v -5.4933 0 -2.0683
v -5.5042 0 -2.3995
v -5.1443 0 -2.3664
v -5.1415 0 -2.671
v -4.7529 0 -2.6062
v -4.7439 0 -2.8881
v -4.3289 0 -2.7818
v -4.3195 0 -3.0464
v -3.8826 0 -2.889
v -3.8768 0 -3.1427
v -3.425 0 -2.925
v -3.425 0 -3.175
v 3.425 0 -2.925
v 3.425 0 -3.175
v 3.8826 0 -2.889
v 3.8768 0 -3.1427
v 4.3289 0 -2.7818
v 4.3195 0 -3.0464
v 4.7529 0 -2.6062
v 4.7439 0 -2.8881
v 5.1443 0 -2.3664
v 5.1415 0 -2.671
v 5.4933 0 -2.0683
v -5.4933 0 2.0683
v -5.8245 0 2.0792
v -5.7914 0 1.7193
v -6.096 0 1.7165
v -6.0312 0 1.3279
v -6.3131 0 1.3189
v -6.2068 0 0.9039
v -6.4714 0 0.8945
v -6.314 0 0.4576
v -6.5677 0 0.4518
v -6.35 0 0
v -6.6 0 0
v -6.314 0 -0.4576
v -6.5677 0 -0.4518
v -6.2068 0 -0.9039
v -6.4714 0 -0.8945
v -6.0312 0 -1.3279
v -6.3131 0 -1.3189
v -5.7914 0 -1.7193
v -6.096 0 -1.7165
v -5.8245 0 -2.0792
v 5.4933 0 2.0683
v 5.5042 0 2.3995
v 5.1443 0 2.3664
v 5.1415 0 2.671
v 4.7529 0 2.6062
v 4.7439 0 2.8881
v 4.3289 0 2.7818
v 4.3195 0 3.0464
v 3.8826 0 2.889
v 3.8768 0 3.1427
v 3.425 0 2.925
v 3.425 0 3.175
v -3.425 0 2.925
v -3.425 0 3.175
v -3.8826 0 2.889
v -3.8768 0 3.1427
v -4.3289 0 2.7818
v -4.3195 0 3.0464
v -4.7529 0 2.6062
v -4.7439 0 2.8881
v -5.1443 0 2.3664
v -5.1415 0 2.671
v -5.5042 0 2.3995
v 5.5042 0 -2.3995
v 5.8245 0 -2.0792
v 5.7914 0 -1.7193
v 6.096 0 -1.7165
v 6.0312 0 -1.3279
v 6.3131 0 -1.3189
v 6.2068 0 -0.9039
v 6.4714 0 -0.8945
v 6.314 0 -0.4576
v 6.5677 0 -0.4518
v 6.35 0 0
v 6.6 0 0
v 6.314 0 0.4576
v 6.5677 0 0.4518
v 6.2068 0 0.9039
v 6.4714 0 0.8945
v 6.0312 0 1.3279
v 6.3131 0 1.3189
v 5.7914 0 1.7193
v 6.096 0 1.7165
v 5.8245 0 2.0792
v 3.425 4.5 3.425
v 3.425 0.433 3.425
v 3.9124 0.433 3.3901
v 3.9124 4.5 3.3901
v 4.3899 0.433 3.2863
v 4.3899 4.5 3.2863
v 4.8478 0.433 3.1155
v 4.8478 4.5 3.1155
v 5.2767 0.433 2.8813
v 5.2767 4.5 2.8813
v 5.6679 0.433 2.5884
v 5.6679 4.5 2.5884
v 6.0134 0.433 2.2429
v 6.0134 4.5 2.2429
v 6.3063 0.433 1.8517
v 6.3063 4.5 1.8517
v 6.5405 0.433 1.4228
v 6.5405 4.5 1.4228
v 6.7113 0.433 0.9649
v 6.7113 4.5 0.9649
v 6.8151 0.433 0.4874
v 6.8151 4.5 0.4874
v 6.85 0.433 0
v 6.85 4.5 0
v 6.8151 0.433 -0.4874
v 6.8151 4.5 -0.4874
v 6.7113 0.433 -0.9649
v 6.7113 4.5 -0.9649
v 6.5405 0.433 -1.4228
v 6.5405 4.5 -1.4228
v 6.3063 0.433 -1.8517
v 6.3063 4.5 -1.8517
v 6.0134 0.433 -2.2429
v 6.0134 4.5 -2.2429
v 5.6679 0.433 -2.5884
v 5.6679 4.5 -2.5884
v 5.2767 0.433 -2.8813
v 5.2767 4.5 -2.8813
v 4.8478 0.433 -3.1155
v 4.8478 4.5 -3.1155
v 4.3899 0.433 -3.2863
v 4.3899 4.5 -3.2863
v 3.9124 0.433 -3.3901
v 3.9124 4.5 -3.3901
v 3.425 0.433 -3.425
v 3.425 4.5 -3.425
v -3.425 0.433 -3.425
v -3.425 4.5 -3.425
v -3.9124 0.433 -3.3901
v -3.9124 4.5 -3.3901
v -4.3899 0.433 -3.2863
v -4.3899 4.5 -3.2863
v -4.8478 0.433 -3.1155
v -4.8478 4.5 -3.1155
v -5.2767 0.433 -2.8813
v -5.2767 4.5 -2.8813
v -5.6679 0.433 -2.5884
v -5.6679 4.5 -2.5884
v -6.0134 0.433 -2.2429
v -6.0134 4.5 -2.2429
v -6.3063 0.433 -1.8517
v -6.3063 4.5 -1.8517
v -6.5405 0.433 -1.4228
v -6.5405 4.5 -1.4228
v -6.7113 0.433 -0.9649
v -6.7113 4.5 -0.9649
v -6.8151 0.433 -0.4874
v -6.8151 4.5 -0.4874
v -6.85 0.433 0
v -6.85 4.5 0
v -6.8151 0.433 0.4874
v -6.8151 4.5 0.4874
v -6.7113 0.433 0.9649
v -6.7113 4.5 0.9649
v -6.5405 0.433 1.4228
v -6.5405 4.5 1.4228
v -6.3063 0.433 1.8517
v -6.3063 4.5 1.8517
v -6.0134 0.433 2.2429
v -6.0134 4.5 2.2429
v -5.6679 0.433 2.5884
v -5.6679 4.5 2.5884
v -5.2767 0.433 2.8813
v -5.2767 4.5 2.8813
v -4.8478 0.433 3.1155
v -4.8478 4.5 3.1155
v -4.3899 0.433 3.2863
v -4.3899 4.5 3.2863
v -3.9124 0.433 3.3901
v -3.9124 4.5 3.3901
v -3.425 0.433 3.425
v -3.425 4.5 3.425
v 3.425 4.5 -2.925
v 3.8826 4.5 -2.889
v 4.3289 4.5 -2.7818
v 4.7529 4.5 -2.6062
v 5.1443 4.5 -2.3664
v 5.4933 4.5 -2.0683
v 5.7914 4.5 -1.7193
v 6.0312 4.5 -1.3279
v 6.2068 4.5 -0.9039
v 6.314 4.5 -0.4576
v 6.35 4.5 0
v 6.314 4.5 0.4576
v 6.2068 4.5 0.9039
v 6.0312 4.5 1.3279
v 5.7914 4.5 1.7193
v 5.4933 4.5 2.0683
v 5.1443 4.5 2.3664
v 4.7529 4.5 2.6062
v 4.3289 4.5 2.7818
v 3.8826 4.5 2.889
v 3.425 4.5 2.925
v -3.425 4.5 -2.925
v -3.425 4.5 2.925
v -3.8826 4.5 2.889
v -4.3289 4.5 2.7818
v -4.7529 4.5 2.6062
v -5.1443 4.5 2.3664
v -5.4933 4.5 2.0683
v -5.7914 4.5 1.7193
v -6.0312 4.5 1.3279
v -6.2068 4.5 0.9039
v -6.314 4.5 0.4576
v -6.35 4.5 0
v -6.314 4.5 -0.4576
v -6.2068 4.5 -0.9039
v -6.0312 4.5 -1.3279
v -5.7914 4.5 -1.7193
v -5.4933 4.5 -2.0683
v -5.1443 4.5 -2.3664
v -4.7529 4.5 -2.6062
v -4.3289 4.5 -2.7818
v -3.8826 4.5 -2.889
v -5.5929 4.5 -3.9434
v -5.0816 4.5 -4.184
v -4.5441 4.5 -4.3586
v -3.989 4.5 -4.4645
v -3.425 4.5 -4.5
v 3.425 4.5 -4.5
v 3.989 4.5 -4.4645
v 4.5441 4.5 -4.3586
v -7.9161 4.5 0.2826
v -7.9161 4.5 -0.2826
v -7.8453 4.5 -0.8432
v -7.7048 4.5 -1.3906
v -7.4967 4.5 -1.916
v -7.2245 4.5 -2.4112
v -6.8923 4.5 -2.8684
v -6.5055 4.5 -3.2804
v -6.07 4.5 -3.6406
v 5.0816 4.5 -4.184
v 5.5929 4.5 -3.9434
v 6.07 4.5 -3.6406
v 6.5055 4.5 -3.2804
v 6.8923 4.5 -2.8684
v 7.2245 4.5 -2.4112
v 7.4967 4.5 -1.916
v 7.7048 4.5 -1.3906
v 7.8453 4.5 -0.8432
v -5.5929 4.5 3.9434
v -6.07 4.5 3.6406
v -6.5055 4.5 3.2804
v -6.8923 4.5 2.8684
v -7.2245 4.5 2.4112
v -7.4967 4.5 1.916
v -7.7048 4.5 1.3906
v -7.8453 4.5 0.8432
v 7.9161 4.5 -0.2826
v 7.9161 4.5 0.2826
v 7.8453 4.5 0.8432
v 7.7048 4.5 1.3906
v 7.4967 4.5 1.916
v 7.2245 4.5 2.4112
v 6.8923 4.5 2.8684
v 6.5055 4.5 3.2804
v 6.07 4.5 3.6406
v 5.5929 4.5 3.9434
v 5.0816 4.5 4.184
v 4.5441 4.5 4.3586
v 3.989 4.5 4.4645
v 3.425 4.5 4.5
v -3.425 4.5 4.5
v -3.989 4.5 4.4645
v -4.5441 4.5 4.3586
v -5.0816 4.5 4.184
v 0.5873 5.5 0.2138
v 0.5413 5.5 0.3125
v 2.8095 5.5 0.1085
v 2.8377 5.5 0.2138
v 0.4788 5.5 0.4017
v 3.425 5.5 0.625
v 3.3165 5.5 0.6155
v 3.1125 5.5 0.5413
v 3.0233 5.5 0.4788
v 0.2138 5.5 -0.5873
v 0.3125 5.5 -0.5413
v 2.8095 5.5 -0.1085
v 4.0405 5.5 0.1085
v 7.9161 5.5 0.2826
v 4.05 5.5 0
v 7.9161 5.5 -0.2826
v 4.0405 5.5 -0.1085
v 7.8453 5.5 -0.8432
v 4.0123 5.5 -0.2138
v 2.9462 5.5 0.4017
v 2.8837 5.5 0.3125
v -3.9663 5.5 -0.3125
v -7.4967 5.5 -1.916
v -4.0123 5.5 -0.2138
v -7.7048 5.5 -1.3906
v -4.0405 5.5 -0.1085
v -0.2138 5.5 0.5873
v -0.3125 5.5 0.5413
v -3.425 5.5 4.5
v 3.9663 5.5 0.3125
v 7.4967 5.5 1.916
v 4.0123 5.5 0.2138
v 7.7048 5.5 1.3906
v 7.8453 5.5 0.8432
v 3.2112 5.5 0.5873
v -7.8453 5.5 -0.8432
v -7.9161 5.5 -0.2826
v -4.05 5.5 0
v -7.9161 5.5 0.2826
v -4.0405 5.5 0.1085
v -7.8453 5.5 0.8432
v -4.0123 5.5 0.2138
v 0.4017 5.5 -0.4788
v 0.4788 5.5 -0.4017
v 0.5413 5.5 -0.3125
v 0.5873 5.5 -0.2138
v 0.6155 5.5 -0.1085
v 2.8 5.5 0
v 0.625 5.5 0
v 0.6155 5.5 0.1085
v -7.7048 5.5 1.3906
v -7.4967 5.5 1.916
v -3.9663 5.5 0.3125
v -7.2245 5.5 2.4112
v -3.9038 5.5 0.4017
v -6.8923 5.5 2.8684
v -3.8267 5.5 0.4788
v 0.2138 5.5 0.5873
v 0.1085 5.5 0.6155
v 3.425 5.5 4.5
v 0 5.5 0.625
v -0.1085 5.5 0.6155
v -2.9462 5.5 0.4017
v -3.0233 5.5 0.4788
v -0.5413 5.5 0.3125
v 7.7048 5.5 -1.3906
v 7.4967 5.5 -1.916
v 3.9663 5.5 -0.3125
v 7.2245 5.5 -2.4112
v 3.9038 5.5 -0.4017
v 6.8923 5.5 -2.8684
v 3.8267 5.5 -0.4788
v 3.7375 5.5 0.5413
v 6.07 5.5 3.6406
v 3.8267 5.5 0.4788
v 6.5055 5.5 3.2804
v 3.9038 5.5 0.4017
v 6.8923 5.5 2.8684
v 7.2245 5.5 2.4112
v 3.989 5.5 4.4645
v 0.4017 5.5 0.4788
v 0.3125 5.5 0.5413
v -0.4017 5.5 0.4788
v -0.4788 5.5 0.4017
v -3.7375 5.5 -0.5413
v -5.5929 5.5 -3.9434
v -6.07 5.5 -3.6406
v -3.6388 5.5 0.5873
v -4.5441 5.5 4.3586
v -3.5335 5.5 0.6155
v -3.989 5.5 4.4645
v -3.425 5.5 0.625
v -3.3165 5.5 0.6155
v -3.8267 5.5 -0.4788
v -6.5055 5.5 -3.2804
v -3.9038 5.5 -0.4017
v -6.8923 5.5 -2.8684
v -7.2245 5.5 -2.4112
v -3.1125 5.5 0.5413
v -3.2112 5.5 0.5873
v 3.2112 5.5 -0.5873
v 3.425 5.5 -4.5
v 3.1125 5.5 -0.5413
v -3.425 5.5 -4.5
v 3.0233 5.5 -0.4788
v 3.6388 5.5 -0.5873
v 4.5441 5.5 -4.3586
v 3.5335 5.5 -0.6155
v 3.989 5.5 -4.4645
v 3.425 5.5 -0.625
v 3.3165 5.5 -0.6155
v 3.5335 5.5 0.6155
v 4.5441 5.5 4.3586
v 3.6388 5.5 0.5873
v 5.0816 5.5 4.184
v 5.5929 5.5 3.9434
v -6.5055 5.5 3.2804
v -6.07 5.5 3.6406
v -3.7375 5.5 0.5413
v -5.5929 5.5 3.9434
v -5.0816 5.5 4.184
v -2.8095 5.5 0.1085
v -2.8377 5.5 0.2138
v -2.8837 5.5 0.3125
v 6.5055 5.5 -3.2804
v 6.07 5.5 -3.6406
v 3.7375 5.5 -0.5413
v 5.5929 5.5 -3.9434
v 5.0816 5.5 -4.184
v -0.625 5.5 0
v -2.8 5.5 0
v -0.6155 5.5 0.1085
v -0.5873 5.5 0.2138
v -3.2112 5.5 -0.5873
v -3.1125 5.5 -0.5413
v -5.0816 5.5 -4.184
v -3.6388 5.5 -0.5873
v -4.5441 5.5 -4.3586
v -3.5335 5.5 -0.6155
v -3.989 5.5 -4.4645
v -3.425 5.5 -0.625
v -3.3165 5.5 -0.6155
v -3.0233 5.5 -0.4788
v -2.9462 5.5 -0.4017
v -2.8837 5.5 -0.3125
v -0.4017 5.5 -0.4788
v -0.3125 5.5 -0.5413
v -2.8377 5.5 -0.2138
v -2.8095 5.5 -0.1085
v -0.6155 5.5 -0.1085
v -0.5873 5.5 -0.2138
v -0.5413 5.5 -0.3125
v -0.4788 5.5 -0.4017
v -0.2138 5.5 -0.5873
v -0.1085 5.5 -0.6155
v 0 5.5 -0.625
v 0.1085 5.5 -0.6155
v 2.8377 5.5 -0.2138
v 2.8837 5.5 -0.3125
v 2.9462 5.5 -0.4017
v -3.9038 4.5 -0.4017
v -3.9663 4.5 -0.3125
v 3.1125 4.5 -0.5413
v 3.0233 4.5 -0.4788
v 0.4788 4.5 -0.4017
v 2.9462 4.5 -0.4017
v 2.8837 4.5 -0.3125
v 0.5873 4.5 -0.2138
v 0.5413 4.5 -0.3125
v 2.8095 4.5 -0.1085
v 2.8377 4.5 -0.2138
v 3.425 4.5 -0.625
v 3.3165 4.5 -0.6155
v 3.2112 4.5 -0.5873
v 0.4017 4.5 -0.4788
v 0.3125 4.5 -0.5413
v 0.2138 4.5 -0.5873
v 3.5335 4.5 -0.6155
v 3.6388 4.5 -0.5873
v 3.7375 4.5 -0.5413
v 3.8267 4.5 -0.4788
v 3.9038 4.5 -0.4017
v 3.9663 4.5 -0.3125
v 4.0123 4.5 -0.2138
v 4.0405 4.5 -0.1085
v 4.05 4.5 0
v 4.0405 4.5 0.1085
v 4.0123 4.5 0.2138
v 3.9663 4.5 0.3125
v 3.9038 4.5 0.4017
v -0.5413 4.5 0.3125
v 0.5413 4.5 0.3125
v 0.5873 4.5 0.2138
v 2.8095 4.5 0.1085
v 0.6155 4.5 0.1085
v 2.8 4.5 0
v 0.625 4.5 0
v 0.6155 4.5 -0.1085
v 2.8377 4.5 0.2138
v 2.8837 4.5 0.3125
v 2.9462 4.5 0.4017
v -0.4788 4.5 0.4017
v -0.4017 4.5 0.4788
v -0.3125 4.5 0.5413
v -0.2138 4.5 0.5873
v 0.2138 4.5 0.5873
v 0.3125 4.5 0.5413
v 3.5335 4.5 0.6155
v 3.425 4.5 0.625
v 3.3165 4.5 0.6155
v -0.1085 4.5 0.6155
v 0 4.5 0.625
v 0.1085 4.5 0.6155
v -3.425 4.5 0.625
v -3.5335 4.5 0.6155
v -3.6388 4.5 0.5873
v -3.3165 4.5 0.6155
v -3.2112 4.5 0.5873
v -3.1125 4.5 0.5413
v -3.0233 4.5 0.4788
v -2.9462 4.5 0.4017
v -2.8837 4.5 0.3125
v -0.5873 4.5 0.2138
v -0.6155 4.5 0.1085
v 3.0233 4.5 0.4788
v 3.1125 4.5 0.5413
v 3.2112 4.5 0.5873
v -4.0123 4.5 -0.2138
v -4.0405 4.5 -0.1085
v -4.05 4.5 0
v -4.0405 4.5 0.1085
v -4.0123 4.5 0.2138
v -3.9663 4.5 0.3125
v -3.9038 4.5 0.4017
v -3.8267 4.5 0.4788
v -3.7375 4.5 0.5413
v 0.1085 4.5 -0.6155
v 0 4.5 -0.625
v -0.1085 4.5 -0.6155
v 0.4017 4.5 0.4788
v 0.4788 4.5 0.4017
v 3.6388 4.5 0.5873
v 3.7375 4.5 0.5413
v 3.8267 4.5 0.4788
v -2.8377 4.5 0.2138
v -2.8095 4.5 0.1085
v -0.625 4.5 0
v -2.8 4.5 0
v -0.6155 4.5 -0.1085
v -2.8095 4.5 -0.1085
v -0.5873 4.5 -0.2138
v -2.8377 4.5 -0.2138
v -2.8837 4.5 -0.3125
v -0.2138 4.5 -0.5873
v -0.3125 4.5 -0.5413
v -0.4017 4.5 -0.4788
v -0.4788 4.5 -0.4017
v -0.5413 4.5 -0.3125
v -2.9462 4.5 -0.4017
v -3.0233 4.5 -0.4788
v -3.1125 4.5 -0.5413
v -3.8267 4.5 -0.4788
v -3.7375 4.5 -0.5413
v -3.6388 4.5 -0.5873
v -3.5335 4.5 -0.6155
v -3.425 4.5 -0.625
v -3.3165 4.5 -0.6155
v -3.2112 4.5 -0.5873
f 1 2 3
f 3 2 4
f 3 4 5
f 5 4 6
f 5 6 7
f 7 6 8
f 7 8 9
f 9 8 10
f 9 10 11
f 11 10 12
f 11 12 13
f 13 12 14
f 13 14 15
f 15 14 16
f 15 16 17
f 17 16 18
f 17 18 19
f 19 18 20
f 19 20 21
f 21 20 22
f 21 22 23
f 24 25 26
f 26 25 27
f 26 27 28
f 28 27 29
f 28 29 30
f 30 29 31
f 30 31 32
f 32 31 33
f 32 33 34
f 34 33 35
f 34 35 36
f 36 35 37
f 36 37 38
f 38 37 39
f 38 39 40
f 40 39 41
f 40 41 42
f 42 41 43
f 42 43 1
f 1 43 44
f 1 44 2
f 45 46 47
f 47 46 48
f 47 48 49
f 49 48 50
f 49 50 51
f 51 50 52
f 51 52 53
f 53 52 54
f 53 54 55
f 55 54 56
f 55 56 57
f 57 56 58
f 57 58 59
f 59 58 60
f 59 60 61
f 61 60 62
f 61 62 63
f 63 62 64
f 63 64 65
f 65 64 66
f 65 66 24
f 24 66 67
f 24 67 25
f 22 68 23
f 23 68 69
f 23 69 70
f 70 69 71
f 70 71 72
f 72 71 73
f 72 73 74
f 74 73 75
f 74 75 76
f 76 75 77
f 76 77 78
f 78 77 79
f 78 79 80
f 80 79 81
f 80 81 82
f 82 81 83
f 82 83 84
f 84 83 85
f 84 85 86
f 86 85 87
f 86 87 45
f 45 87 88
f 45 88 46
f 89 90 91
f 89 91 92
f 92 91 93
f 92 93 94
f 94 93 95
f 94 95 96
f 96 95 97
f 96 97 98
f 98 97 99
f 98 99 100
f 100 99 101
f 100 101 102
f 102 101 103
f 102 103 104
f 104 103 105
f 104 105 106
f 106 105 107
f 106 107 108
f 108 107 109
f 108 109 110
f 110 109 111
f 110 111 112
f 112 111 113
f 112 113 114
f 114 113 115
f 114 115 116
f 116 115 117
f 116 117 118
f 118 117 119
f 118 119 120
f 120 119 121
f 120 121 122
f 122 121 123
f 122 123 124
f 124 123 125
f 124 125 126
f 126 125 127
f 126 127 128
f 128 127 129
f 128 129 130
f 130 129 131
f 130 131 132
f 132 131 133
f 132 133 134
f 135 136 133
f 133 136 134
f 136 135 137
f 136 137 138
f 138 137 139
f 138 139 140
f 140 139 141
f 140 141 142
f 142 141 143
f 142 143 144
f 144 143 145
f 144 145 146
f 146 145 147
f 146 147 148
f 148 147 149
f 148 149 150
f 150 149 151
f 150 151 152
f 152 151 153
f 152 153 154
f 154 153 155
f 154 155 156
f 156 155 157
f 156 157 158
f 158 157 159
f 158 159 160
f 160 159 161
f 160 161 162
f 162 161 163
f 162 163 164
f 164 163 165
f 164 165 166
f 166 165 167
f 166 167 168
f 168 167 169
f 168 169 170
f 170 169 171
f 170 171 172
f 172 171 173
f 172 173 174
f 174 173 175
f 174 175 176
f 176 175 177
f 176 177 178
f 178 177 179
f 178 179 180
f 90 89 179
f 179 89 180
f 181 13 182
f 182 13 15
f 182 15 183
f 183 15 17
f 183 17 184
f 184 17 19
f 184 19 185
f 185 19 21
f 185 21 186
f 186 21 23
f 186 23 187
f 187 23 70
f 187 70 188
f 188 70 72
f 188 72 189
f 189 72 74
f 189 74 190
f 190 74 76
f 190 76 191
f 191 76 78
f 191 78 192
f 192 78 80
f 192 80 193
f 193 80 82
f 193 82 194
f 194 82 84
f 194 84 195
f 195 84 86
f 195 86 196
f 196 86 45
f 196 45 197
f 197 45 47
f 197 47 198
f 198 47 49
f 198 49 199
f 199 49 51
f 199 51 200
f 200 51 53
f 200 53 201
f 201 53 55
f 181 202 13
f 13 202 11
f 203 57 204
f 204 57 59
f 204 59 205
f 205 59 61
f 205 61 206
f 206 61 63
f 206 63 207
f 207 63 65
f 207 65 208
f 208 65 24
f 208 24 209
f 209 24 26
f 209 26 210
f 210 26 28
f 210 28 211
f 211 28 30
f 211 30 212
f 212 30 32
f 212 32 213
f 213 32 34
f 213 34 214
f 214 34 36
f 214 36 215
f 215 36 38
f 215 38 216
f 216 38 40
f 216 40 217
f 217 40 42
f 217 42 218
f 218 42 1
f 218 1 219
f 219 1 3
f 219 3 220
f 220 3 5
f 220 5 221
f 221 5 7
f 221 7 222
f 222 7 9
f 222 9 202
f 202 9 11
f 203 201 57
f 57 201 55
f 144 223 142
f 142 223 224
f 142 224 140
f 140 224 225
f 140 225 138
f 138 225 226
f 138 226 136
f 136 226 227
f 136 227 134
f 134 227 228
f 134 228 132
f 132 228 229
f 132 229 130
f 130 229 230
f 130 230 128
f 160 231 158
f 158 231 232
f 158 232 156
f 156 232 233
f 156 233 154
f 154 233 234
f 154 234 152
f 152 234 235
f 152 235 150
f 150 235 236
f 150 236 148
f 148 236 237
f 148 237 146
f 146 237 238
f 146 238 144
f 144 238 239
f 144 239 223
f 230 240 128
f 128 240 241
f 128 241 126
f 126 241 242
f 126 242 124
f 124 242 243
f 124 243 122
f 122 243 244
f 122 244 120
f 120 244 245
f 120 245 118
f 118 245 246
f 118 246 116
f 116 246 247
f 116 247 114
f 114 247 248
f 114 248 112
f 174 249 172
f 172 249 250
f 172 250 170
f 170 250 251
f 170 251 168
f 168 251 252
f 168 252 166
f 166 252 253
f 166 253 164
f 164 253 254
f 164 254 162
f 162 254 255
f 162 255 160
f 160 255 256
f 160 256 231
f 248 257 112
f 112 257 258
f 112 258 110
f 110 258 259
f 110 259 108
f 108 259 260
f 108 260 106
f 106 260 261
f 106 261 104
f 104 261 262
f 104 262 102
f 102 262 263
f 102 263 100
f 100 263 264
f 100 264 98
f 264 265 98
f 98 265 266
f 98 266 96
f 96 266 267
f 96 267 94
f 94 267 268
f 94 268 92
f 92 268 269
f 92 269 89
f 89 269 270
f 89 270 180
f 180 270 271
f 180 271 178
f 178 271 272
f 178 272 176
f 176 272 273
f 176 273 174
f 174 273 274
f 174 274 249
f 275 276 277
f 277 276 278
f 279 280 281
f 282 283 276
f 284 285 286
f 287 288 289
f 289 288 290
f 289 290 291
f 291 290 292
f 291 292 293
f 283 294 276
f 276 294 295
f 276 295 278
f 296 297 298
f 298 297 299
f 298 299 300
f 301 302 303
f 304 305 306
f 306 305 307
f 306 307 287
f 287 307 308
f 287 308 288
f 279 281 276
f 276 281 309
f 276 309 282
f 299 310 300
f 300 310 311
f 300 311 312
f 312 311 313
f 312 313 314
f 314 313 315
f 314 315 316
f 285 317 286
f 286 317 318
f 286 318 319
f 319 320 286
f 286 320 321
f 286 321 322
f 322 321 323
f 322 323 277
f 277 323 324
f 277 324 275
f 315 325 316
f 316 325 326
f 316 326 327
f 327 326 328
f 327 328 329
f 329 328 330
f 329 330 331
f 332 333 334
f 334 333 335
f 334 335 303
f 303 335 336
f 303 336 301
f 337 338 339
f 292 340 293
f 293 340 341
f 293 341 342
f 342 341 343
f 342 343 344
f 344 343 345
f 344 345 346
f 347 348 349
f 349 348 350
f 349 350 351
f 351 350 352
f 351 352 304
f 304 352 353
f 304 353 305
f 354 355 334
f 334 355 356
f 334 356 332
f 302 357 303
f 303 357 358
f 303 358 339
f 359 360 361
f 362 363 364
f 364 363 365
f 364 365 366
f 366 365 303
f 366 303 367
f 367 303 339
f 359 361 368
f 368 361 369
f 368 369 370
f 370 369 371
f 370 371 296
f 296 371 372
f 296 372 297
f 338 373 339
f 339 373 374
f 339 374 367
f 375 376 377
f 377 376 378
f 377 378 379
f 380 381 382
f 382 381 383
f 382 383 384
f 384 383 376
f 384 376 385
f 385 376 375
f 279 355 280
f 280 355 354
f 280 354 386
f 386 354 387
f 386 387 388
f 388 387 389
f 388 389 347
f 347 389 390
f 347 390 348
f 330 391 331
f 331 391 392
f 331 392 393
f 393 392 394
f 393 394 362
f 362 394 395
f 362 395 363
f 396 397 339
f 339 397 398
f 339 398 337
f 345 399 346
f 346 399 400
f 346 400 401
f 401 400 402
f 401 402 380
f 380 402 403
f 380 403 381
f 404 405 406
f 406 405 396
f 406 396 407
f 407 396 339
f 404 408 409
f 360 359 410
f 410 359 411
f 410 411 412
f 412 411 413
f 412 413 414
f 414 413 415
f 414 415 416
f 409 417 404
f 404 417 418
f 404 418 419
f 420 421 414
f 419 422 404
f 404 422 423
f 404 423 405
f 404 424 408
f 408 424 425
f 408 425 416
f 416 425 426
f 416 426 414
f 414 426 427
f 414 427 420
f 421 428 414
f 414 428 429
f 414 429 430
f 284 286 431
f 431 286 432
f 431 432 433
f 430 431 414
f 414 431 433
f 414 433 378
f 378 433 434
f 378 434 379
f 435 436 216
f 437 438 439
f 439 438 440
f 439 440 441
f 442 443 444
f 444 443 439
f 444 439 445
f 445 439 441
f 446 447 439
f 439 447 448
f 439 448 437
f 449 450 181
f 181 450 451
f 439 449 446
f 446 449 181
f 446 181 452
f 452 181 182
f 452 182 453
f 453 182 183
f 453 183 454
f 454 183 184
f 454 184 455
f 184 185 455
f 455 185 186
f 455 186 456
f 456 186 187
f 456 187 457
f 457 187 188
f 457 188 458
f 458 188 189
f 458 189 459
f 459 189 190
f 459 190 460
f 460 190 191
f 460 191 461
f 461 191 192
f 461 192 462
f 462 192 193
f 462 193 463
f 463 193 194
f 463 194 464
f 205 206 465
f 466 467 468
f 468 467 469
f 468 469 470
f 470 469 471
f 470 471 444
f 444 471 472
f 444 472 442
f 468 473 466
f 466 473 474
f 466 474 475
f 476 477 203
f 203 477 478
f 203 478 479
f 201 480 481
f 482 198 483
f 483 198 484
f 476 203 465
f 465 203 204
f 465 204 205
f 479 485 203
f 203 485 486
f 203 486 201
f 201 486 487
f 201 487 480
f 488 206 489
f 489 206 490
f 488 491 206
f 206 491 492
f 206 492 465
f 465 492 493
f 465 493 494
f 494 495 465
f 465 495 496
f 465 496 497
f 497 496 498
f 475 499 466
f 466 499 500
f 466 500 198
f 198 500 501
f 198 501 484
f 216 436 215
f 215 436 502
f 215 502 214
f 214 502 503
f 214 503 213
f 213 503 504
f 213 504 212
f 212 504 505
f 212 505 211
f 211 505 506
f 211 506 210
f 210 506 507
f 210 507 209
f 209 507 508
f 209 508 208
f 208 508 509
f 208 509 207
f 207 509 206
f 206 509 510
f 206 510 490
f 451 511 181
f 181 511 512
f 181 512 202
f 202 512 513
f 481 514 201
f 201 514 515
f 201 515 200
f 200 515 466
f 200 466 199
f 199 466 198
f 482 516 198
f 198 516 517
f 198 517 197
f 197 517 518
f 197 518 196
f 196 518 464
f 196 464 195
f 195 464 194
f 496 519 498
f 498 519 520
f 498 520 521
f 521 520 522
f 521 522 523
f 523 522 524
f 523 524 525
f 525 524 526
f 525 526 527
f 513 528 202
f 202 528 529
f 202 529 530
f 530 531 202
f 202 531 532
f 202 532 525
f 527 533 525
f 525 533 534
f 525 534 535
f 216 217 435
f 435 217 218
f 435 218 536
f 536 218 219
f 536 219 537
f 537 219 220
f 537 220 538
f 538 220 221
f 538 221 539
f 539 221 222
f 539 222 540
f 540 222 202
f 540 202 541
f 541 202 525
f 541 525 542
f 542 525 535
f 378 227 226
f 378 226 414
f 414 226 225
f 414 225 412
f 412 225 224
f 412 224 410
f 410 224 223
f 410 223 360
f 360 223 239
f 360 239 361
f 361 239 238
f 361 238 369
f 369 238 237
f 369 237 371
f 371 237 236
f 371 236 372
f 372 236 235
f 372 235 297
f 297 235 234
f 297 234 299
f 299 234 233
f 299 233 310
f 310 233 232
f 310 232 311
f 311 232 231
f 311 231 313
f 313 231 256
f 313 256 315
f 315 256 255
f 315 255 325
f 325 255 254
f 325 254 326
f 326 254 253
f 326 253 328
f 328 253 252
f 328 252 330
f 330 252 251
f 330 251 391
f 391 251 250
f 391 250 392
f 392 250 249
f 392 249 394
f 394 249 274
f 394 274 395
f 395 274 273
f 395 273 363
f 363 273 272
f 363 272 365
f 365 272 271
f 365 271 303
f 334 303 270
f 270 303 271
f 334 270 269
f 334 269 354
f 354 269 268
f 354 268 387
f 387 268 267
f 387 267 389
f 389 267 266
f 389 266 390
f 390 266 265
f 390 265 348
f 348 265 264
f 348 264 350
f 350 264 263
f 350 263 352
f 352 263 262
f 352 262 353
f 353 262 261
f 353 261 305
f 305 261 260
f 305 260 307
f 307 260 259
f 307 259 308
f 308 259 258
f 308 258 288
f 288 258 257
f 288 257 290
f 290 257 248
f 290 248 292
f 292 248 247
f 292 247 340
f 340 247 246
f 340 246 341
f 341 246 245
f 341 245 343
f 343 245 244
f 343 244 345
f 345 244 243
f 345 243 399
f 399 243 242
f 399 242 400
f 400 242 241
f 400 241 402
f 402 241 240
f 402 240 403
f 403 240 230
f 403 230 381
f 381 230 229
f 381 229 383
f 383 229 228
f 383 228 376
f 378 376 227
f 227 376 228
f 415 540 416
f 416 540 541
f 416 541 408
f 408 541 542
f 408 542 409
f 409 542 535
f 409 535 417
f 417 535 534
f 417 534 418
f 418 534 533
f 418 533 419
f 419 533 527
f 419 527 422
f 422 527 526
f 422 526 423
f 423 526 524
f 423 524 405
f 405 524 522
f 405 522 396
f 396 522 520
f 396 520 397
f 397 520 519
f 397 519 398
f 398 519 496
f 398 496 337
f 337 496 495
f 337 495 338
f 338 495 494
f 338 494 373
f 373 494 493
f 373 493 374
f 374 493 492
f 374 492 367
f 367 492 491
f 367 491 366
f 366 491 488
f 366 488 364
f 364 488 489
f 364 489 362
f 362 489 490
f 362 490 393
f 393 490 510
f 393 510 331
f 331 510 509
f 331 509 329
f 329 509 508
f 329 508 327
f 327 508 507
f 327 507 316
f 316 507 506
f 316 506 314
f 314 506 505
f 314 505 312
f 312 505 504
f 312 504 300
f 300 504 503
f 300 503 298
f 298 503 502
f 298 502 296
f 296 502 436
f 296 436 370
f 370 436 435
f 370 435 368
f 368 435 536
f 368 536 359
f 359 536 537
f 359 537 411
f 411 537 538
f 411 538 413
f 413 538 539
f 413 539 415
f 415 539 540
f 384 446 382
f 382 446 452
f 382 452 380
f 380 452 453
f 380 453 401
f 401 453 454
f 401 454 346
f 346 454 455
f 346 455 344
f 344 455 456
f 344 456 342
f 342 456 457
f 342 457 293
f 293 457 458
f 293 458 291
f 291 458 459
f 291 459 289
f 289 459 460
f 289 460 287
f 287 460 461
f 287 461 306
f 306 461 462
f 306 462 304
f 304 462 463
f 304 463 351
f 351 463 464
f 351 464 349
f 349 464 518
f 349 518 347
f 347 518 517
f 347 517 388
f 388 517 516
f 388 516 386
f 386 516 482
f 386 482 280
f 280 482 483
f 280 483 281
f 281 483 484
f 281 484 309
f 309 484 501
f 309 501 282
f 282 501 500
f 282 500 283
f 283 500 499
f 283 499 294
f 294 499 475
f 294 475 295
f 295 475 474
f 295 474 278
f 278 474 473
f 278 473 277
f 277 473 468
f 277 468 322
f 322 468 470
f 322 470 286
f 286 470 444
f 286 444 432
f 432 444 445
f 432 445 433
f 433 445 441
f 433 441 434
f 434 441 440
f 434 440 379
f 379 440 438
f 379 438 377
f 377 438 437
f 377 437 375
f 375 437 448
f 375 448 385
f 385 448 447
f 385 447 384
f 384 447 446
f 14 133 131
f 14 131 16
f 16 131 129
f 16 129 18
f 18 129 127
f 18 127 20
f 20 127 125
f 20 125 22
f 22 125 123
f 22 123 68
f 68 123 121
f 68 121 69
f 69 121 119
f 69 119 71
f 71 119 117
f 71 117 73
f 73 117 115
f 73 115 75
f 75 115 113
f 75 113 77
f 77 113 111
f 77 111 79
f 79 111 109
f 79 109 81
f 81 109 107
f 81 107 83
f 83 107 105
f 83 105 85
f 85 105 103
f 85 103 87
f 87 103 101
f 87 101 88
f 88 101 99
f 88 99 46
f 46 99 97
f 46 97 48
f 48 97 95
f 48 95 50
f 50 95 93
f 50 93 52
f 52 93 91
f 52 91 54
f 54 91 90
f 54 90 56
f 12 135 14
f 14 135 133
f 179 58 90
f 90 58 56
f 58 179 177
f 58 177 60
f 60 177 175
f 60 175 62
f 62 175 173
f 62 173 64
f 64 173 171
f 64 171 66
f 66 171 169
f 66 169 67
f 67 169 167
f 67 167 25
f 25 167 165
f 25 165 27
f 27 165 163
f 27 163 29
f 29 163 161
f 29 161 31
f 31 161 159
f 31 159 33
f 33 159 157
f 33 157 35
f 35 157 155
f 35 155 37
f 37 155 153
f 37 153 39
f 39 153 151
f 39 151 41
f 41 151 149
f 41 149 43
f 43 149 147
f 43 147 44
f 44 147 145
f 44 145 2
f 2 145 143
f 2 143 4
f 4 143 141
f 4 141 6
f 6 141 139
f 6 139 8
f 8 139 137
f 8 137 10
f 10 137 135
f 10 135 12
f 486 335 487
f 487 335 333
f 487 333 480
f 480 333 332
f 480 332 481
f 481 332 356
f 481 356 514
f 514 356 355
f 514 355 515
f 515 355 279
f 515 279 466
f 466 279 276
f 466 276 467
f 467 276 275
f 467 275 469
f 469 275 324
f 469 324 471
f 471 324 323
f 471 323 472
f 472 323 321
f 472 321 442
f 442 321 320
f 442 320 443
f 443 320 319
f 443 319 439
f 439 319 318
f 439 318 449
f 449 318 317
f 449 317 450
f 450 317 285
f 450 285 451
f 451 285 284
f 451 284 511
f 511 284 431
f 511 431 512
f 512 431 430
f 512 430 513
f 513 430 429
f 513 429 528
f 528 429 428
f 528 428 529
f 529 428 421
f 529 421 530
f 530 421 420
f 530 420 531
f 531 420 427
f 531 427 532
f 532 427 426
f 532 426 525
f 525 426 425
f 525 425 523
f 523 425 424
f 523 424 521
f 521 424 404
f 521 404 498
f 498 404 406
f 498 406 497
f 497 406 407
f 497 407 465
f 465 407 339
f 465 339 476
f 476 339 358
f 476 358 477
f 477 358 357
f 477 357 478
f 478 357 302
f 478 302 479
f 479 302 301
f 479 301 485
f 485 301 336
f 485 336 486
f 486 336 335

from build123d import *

# Parameters (mm, degrees)
BOSS_EXTRUDE1_DEPTH     = 4.5
SKETCH2_R               = 0.625
BOSS_EXTRUDE2_DEPTH     = 1
CHAMFER2_SIZE           = 0.25
CHAMFER2_SIZE2          = 0.433012702
SKETCH3_R               = 0.625
CUT_EXTRUDE1_DEPTH      = 1
CUT_EXTRUDE1_DEPTH_BACK = 6.5


with BuildPart() as part:
    # Sketch1 → Boss-Extrude1 (new body)
    with BuildSketch(Plane(origin=(0, 0, 0), x_dir=(1, 0, 0), z_dir=(0, 1, 0))):
        with BuildLine():
            Line((-3.425, 3.425), (3.425, 3.425))
            ThreePointArc((3.425, 3.425), (6.85, 0), (3.425, -3.425))
            Line((3.425, -3.425), (-3.425, -3.425))
            ThreePointArc((-3.425, -3.425), (-6.85, 0), (-3.425, 3.425))
        make_face()
        with BuildLine():
            Line((-3.425, 2.925), (3.425, 2.925))
            ThreePointArc((3.425, 2.925), (6.35, 0), (3.425, -2.925))
            Line((3.425, -2.925), (-3.425, -2.925))
            ThreePointArc((-3.425, -2.925), (-6.35, 0), (-3.425, 2.925))
        make_face(mode=Mode.SUBTRACT)
    extrude(amount=BOSS_EXTRUDE1_DEPTH)

    # Sketch2 → Boss-Extrude2 (add)
    with BuildSketch(Plane(origin=(0, 4.5, 0), x_dir=(1, 0, 0), z_dir=(0, 1, 0))):
        with BuildLine():
            Line((-3.425, 4.5), (3.425, 4.5))
            ThreePointArc((3.425, 4.5), (7.925, 0), (3.425, -4.5))
            Line((3.425, -4.5), (-3.425, -4.5))
            ThreePointArc((-3.425, -4.5), (-7.925, 0), (-3.425, 4.5))
        make_face()
        with Locations((-3.425, 0)):
            Circle(SKETCH2_R, mode=Mode.SUBTRACT)
        with Locations((3.425, 0)):
            Circle(SKETCH2_R, mode=Mode.SUBTRACT)
    extrude(amount=BOSS_EXTRUDE2_DEPTH)

    # Chamfer2
    chamfer2_edges = [part.edges().sort_by_distance(p)[0] for p in [
        (0, 0, 3.425),
        (-6.85, 0, 0),
        (0, 0, -3.425),
        (6.85, 0, 0),
    ]]
    chamfer2_side = [part.faces().sort_by_distance(p)[0] for p in [
        (0, 0, -3.271829344),
    ]]
    chamfer(chamfer2_edges, length=CHAMFER2_SIZE, length2=CHAMFER2_SIZE2, reference=chamfer2_side[0])

    # Sketch3 → Cut-Extrude1 (cut, two sides)
    with BuildSketch(Plane(origin=(0, 5.5, 0), x_dir=(1, 0, 0), z_dir=(0, 1, 0))) as cut_extrude1_sk:
        Circle(SKETCH3_R)
    extrude(amount=CUT_EXTRUDE1_DEPTH, mode=Mode.SUBTRACT)
    extrude(cut_extrude1_sk.sketch, amount=-CUT_EXTRUDE1_DEPTH_BACK, mode=Mode.SUBTRACT)


solid = part.part
